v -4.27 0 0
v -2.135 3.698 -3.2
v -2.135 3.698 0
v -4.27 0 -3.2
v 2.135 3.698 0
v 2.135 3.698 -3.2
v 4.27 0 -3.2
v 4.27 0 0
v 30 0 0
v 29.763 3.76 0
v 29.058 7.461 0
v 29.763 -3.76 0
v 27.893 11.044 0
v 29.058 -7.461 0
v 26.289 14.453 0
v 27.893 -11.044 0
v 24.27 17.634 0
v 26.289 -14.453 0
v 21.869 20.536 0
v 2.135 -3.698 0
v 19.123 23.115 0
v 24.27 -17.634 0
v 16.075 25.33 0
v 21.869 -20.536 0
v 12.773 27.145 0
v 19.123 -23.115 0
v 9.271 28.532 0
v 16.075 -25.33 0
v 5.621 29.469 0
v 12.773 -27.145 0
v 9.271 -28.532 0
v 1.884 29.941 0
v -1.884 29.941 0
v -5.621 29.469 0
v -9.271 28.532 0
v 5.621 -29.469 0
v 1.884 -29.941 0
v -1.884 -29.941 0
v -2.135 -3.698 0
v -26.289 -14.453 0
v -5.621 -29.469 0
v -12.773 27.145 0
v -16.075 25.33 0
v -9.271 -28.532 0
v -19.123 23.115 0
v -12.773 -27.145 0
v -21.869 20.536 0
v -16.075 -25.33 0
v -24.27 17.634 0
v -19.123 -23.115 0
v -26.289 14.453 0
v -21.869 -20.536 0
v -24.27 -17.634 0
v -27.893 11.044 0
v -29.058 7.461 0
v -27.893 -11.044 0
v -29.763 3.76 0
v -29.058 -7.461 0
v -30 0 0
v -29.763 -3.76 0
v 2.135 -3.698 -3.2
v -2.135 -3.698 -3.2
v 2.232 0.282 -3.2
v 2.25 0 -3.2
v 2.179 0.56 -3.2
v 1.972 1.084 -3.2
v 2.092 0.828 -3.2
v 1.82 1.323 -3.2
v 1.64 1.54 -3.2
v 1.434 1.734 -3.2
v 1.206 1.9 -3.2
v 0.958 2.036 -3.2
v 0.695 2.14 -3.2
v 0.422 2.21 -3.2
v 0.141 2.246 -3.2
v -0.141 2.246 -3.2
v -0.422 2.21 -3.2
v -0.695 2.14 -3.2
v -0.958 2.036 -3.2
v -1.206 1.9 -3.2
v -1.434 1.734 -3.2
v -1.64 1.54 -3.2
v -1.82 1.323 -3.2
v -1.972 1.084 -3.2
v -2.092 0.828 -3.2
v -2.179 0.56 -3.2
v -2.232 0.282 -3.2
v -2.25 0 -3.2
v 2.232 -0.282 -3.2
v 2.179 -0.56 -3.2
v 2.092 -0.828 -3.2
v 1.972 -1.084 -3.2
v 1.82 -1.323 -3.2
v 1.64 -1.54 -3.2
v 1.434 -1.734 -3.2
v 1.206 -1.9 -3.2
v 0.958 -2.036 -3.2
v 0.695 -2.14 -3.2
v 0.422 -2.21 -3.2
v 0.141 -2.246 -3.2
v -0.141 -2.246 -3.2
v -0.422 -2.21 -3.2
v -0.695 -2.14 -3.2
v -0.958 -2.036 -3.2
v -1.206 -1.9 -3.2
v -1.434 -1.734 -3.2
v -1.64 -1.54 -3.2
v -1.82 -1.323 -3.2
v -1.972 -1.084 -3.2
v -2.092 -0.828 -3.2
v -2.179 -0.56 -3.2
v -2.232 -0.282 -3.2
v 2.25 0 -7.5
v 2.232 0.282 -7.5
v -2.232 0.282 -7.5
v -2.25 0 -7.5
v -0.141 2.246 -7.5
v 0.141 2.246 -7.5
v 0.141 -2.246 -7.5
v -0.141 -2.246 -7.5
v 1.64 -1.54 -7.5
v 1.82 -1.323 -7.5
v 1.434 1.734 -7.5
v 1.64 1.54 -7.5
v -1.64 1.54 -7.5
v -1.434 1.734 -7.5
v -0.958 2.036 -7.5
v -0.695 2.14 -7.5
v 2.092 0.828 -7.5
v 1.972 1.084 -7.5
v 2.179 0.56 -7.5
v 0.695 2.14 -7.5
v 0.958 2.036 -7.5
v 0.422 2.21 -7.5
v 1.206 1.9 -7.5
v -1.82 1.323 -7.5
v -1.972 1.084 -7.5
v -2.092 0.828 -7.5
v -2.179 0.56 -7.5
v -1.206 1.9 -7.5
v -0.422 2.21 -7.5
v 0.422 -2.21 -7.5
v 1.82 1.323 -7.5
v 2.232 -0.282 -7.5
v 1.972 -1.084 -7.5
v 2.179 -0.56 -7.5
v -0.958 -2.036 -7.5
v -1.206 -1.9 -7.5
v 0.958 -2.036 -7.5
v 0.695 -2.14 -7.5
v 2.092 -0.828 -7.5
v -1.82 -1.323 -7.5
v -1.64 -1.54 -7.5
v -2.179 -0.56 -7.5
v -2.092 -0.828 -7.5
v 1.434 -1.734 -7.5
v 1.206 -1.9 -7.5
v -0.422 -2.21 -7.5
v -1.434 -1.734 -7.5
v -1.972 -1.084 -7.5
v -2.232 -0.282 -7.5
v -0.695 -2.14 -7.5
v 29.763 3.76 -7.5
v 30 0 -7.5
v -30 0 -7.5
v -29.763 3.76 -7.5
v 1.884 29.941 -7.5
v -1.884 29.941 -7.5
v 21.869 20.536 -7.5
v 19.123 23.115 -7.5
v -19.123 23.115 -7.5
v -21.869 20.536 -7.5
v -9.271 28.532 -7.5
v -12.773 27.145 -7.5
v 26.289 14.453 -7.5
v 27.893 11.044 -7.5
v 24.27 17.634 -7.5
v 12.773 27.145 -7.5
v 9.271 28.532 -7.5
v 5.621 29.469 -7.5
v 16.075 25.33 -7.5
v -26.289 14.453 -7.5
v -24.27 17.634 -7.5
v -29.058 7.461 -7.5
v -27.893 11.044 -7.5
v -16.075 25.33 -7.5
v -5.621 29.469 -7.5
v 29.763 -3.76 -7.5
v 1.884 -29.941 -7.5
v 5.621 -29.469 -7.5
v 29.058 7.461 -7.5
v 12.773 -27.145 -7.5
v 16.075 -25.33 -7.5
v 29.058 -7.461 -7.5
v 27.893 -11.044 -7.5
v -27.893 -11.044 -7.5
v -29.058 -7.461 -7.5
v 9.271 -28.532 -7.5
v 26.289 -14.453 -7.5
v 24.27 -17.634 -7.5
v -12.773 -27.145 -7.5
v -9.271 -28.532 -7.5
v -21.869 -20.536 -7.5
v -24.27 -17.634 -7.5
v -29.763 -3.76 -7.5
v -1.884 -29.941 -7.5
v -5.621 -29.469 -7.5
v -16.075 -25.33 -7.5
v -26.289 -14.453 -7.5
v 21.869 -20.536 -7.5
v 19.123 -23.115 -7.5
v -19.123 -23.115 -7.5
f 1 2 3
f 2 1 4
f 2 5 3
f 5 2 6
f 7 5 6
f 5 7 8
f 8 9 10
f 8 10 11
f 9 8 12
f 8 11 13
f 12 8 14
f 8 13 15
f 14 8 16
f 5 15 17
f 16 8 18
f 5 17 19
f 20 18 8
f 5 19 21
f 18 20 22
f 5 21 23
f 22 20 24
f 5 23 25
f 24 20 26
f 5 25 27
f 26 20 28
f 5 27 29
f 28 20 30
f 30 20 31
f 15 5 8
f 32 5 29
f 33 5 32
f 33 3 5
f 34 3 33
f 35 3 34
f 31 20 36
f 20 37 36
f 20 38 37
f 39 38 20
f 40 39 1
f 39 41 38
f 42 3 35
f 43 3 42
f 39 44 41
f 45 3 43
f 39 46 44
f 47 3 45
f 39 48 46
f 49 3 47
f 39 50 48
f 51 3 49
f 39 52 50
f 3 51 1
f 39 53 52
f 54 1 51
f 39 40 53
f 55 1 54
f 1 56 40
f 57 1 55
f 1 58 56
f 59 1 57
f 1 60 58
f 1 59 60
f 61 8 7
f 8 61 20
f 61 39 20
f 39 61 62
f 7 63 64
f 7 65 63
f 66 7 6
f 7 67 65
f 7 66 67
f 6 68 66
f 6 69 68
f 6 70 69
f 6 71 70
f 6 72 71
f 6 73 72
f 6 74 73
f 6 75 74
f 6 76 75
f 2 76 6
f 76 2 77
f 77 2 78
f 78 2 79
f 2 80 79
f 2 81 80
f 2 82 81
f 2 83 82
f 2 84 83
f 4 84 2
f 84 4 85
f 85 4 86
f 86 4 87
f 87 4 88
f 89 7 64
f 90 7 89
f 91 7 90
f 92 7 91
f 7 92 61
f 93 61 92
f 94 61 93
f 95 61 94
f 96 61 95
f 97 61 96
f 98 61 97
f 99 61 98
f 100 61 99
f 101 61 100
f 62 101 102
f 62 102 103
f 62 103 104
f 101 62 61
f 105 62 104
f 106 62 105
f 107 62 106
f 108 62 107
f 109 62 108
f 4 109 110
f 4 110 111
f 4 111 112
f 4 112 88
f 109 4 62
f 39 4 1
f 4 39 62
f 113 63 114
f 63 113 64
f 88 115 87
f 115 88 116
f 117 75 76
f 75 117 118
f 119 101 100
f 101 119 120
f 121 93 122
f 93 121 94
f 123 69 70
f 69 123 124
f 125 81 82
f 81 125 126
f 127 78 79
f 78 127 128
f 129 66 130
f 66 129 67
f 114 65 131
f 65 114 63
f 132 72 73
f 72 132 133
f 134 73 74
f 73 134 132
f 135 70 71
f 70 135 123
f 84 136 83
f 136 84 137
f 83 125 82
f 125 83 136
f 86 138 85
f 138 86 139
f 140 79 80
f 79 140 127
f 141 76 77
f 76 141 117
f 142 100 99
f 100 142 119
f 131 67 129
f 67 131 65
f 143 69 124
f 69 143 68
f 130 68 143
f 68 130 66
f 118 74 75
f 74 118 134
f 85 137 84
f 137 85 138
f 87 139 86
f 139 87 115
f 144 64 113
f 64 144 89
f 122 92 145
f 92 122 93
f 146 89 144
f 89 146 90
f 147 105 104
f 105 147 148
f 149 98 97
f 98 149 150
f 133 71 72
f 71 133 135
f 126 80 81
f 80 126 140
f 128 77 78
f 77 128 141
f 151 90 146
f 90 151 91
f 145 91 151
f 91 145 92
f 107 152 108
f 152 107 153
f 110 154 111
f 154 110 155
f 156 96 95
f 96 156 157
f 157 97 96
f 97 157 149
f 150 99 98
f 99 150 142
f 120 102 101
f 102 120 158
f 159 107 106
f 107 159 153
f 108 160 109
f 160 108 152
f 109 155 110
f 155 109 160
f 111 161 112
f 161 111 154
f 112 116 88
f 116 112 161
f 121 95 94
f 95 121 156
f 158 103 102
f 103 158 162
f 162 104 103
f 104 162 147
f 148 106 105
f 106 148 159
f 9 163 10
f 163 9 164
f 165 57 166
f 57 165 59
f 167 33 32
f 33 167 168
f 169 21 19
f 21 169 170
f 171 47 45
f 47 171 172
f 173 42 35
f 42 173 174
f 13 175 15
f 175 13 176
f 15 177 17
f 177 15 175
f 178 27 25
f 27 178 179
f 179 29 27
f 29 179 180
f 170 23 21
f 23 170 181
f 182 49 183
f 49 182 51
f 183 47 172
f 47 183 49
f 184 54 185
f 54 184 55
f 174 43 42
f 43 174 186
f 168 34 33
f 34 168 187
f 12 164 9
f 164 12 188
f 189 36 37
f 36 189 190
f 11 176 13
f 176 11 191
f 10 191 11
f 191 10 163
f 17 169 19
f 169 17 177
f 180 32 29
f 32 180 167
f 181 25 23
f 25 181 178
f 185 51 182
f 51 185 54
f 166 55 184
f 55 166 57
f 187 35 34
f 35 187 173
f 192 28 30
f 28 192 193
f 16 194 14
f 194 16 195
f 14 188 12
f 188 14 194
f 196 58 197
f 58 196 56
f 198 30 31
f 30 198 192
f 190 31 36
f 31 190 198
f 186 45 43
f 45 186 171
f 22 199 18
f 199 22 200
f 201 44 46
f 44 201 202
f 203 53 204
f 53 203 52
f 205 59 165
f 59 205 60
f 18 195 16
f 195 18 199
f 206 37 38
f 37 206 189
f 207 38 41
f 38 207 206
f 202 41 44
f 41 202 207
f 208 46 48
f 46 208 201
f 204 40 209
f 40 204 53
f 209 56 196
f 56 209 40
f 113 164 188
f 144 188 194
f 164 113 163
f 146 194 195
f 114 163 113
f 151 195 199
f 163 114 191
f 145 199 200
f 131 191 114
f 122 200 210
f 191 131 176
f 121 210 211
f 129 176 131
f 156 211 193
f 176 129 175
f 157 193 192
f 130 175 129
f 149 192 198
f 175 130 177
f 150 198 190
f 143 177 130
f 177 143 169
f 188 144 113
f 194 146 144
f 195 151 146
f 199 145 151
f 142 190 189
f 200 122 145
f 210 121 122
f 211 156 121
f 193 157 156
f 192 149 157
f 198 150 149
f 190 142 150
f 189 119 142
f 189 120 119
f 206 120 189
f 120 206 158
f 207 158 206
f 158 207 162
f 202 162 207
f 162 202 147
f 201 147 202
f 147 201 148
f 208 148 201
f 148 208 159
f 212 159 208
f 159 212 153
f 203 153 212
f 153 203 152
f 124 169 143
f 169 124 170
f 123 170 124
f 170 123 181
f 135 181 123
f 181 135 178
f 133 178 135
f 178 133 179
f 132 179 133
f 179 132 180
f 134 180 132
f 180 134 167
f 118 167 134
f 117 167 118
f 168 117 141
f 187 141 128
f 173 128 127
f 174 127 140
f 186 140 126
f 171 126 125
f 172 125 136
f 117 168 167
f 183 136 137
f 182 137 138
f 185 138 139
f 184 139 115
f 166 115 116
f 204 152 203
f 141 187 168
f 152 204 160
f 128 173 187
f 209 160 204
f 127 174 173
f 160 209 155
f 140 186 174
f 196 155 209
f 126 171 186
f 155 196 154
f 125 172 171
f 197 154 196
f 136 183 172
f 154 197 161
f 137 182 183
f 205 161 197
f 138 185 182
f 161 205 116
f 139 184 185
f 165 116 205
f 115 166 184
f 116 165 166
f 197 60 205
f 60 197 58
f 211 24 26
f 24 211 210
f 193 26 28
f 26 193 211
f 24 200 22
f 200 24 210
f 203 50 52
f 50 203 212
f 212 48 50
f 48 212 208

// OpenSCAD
$fn = 50;

difference() {
	union() {
		translate(v = [0, 0, -7.5]) {
			cylinder(h = 7.5, r = 30.0);
		}
	}
	union() {
		translate(v = [0, 0, 0]) {
			rotate(a = [0, 0, 0]) {
				difference() {
					union() {
						translate(v = [0, 0, -3.2]) {
							linear_extrude(height = 3.2) {
								polygon(points = [[4.2698, 0.0], [2.1349000000000005, 3.697755269078796], [-2.134899999999999, 3.6977552690787965], [-4.2698, 5.228996902999369e-16], [-2.134900000000002, -3.6977552690787956], [2.1348999999999974, -3.697755269078798]]);
							}
						}
					}
					union();
				}
			}
		}
		#translate(v = [0, 0, -100.0]) {
			cylinder(h = 200, r = 2.25);
		}
	}
}
